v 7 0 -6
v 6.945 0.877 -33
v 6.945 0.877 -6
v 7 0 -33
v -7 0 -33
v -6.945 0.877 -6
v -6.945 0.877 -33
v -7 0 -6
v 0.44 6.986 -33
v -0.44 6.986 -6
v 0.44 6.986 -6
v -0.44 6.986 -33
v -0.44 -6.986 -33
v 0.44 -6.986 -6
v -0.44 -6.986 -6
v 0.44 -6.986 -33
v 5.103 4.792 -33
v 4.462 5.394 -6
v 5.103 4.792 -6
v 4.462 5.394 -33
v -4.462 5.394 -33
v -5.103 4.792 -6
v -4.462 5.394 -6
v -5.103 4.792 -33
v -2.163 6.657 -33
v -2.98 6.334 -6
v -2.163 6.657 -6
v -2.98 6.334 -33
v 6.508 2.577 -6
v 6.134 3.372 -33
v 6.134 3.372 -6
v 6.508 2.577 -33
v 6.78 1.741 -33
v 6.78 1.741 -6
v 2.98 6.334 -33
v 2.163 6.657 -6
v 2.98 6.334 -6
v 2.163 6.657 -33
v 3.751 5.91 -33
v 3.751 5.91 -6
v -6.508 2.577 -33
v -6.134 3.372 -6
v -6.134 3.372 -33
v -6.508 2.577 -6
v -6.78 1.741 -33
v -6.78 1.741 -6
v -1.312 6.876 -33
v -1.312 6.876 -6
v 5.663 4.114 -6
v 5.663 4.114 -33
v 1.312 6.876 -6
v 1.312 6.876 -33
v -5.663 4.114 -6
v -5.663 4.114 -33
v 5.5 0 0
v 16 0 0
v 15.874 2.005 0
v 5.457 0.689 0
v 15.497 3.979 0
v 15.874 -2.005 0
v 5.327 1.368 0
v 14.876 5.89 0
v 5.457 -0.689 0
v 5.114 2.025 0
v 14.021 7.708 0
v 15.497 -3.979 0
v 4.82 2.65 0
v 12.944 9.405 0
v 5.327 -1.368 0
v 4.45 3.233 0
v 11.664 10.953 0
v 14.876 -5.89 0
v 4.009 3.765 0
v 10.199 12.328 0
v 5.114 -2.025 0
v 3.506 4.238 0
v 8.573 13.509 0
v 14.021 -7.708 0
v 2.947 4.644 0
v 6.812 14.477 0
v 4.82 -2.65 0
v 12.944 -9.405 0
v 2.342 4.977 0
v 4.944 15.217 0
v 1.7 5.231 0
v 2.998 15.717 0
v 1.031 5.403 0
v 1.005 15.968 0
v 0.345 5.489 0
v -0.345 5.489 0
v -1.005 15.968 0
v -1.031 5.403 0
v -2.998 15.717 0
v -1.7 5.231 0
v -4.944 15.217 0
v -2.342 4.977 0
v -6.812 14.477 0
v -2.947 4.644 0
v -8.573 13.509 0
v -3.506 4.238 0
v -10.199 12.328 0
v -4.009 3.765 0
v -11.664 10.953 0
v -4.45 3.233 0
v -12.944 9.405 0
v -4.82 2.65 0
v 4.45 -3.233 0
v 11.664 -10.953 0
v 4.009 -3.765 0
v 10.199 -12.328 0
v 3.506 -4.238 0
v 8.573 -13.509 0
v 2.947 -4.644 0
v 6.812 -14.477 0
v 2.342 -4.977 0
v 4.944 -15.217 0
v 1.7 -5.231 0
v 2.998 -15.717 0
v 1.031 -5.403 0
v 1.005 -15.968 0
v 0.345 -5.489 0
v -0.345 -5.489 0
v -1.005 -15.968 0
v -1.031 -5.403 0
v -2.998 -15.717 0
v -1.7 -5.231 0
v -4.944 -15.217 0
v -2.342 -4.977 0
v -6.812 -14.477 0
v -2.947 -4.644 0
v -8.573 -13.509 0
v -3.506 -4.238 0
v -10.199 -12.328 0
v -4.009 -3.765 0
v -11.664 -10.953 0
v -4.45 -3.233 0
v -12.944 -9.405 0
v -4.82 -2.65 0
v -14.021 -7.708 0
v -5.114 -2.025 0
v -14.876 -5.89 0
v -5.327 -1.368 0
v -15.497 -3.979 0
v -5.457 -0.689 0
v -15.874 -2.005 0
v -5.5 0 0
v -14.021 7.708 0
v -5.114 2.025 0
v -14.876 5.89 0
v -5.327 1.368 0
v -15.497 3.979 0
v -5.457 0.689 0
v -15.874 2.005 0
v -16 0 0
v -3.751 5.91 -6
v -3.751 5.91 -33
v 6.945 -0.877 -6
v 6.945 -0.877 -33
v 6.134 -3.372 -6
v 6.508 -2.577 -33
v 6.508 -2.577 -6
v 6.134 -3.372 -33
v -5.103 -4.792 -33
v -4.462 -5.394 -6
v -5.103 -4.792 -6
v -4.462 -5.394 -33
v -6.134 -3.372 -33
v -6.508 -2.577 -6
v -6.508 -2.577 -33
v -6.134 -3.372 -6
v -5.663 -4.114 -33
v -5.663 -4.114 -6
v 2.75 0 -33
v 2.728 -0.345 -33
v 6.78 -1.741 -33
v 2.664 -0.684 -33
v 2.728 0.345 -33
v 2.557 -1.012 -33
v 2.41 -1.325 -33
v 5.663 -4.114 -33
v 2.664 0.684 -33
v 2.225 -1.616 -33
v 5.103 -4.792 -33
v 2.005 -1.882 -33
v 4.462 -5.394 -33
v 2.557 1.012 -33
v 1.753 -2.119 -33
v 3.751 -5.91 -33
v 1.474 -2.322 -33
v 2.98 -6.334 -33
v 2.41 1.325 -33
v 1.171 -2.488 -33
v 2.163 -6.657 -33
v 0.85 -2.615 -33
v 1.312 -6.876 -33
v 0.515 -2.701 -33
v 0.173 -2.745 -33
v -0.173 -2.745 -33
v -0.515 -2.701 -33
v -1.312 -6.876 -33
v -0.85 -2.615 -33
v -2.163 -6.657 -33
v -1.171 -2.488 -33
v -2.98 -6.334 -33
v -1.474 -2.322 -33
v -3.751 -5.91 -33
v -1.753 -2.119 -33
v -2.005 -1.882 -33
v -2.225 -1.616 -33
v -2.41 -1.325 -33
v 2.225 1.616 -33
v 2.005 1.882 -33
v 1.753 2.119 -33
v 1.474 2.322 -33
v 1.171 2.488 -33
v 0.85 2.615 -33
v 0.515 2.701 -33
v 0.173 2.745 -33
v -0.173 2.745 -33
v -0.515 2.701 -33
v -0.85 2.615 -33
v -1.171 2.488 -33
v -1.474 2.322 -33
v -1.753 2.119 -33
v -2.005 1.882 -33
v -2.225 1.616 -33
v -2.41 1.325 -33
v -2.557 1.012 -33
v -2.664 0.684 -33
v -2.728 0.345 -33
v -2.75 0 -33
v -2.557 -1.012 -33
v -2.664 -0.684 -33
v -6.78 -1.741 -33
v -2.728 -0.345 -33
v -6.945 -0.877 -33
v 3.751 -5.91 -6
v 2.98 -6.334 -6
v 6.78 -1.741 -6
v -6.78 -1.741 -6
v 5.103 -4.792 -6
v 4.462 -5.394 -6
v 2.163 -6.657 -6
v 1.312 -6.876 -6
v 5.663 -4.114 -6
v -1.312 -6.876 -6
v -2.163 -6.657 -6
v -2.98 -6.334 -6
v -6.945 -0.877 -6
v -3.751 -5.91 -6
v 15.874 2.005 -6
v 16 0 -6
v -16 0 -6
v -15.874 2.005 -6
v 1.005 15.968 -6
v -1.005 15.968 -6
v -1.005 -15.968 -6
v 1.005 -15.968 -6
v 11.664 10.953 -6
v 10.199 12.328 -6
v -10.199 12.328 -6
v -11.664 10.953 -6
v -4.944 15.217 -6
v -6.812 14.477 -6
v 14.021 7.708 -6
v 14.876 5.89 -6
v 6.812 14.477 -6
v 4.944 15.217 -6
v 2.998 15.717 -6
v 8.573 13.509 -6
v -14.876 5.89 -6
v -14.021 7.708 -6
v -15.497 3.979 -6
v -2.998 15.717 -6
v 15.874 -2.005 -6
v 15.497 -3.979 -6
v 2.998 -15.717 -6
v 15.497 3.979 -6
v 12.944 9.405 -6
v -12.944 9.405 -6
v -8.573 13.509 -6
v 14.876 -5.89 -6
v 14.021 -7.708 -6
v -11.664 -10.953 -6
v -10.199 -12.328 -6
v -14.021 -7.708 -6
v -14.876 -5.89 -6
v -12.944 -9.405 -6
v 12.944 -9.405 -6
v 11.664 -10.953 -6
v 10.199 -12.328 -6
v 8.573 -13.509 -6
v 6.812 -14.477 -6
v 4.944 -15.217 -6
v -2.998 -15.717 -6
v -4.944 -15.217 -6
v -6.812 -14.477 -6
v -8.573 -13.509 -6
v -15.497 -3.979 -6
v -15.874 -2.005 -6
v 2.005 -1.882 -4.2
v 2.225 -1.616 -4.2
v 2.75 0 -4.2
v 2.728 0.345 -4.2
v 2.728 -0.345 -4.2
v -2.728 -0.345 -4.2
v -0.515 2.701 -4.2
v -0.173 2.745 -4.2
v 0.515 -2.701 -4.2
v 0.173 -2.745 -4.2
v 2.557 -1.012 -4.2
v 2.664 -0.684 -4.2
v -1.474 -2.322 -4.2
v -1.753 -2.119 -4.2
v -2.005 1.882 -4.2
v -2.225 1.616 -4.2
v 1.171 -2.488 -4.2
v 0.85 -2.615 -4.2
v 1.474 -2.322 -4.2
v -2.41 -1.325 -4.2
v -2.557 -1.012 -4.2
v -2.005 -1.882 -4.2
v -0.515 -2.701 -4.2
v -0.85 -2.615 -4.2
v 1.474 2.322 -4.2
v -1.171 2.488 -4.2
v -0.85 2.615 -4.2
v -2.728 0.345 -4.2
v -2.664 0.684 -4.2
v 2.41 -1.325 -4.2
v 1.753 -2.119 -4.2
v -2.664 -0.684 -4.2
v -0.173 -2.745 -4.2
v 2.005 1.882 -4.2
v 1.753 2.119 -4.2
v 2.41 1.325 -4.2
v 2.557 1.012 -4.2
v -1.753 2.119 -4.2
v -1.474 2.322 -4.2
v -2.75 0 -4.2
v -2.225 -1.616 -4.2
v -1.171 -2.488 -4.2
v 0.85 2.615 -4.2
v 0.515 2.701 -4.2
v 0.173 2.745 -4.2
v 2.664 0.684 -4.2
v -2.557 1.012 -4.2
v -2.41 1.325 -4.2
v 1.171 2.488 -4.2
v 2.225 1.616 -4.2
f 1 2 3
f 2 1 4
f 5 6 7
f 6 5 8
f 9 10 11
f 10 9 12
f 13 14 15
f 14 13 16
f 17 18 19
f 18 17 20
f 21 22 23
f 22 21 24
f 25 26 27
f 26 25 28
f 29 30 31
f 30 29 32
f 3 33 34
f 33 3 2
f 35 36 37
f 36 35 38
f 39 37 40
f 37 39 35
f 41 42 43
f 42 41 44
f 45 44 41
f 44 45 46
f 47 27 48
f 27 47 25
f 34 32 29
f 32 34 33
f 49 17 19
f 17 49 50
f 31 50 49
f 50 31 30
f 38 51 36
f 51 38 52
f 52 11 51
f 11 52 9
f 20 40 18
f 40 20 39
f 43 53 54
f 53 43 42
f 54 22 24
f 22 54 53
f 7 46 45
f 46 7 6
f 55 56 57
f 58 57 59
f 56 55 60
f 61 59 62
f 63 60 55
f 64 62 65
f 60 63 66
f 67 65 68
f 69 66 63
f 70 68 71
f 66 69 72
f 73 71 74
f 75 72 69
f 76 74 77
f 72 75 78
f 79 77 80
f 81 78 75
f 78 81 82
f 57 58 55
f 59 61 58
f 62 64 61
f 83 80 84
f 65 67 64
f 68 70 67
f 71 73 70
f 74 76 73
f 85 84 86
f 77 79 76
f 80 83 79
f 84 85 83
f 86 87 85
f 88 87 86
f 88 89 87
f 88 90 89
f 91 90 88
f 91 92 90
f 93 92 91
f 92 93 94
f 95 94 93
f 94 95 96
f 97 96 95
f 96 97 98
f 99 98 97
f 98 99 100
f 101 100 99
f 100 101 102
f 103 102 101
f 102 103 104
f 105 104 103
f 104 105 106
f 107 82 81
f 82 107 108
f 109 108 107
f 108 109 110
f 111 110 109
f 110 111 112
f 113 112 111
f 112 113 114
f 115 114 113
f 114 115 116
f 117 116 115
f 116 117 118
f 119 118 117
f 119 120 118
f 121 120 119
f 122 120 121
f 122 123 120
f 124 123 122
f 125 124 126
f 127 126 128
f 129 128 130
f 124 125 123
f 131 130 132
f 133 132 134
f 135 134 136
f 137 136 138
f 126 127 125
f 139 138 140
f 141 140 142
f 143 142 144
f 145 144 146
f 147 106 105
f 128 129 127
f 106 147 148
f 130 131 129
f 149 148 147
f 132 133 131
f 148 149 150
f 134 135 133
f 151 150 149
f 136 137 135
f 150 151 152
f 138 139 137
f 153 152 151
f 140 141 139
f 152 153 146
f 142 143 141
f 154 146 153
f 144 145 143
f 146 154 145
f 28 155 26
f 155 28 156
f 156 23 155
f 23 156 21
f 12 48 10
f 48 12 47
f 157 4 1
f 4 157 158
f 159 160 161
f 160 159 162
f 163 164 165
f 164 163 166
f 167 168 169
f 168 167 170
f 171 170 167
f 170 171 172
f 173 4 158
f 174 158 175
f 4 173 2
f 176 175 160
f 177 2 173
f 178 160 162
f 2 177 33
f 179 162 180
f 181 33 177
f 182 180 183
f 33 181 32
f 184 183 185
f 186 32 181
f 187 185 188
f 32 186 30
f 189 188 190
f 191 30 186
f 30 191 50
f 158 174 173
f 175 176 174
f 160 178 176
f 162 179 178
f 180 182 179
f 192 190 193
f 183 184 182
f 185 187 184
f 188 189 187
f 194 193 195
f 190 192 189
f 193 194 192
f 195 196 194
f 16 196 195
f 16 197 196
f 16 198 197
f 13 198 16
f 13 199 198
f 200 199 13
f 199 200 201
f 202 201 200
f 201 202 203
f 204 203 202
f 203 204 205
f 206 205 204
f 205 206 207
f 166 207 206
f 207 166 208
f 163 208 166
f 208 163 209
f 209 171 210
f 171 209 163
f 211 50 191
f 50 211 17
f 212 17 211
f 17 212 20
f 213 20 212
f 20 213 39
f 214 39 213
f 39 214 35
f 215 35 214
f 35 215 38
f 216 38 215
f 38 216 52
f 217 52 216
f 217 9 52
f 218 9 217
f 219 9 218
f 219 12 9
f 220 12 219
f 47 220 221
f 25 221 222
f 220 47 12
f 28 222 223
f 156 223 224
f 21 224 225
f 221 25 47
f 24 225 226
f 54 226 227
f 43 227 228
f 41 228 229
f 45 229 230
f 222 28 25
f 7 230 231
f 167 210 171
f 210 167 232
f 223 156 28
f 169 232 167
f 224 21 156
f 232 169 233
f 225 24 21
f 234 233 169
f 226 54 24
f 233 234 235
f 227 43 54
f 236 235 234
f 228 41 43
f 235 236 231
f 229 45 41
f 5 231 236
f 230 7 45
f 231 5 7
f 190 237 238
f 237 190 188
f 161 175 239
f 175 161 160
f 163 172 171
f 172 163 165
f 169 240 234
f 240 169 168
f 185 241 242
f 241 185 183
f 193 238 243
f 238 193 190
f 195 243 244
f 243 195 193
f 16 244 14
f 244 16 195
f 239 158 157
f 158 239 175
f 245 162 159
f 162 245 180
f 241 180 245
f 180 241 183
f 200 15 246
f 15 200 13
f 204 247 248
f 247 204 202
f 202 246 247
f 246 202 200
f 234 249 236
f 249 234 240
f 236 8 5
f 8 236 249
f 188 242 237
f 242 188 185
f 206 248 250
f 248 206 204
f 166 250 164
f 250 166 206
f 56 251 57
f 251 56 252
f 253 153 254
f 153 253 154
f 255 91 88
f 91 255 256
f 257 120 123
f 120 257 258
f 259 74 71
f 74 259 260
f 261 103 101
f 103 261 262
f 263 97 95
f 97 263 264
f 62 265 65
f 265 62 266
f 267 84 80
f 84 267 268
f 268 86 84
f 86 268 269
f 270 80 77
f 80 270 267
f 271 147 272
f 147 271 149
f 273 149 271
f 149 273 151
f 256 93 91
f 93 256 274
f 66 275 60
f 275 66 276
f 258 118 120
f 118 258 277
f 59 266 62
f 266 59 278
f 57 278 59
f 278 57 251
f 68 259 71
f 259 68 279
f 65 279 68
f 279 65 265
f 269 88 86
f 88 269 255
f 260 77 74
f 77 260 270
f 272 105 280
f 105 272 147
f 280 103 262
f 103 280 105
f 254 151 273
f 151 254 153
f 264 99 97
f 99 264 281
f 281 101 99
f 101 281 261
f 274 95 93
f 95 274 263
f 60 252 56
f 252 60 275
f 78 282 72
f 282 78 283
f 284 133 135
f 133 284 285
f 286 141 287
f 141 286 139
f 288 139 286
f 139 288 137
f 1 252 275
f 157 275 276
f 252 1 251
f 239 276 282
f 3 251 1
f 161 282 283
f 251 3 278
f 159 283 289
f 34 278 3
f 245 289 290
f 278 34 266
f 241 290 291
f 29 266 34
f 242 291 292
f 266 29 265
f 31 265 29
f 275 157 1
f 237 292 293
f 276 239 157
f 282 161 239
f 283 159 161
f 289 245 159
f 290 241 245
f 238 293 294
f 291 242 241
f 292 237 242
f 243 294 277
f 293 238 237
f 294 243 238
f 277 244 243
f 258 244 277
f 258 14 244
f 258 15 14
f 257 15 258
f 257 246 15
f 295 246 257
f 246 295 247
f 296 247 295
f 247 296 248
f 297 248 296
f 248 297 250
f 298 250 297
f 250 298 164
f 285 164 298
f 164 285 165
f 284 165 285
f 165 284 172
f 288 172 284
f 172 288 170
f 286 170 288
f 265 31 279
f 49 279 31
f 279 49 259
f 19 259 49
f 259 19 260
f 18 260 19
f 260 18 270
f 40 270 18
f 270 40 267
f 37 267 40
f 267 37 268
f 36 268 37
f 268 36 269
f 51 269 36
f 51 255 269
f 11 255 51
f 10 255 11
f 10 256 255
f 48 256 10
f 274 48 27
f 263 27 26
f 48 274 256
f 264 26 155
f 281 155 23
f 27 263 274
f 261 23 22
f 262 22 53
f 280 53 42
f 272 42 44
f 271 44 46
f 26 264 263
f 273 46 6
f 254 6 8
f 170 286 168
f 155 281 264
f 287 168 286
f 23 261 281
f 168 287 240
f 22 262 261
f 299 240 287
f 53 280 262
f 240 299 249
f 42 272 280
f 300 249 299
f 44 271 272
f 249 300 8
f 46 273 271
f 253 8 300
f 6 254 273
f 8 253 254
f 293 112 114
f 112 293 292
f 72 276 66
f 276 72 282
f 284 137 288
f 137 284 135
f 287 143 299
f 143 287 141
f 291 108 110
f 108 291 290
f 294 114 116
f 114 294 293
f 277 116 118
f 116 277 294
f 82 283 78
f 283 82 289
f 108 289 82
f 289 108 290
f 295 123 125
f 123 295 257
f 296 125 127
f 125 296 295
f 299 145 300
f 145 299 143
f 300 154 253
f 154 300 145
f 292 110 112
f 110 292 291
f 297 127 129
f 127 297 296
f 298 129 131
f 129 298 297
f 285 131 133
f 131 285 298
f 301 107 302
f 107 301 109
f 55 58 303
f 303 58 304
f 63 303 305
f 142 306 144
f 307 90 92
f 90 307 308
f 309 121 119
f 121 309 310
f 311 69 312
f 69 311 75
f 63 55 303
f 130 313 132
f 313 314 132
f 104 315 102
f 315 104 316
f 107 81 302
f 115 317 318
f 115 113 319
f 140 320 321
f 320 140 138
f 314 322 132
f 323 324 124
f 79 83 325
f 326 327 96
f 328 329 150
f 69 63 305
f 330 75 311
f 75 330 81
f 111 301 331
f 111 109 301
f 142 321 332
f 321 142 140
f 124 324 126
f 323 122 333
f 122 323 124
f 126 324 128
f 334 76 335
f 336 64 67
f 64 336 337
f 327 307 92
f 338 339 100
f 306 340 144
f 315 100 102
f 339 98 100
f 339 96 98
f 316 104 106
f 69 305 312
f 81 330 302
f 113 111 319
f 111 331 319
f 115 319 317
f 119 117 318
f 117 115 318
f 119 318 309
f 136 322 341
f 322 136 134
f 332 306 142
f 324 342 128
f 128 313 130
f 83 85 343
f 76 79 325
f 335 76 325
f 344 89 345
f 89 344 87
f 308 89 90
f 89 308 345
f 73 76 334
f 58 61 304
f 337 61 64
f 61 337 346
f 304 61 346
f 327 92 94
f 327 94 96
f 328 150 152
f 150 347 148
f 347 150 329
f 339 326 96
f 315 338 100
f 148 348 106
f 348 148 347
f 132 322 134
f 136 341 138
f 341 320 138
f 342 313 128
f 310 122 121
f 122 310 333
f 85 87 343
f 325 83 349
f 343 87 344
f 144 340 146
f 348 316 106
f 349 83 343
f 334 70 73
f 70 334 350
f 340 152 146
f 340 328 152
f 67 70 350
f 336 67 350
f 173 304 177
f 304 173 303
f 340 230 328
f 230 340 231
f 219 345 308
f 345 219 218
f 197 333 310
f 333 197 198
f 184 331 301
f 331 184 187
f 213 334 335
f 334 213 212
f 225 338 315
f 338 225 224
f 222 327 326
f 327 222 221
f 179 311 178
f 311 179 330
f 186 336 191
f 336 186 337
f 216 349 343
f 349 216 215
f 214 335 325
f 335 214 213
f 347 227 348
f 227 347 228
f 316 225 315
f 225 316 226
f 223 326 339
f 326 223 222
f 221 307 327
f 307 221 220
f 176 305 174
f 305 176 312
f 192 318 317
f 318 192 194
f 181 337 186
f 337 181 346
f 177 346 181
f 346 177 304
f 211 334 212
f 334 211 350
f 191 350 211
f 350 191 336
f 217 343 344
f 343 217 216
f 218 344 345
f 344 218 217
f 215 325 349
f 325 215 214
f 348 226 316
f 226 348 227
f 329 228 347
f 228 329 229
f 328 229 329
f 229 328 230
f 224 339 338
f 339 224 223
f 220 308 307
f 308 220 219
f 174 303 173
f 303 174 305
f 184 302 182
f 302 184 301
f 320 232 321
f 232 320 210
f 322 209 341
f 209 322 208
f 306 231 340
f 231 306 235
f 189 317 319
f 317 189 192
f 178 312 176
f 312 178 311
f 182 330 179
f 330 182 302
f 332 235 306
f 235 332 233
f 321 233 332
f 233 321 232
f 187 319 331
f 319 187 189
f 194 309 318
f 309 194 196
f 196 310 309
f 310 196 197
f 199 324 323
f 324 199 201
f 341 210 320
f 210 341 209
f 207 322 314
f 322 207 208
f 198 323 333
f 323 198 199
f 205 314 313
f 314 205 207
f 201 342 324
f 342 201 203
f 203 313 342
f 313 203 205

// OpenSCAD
$fn = 50;


difference() {
	union() {
		translate(v = [0, 0, -33.0000000000]) {
			cylinder(h = 33, r = 7.0000000000);
		}
		translate(v = [0, 0, -6.0000000000]) {
			cylinder(h = 6, r = 16.0000000000);
		}
	}
	union() {
		translate(v = [0, 0, 0]) {
			rotate(a = [0, 0, 0]) {
				difference() {
					union() {
						#translate(v = [0, 0, -33.0000000000]) {
							cylinder(h = 33, r = 2.2500000000);
						}
						#translate(v = [0, 0, -4.2000000000]) {
							cylinder(h = 4.2000000000, r1 = 2.7500000000, r2 = 5.5000000000);
						}
						#translate(v = [0, 0, -33.0000000000]) {
							cylinder(h = 33, r = 2.7500000000);
						}
						#translate(v = [0, 0, -33.0000000000]) {
							cylinder(h = 33, r = 2.2500000000);
						}
					}
					union();
				}
			}
		}
	}
}
